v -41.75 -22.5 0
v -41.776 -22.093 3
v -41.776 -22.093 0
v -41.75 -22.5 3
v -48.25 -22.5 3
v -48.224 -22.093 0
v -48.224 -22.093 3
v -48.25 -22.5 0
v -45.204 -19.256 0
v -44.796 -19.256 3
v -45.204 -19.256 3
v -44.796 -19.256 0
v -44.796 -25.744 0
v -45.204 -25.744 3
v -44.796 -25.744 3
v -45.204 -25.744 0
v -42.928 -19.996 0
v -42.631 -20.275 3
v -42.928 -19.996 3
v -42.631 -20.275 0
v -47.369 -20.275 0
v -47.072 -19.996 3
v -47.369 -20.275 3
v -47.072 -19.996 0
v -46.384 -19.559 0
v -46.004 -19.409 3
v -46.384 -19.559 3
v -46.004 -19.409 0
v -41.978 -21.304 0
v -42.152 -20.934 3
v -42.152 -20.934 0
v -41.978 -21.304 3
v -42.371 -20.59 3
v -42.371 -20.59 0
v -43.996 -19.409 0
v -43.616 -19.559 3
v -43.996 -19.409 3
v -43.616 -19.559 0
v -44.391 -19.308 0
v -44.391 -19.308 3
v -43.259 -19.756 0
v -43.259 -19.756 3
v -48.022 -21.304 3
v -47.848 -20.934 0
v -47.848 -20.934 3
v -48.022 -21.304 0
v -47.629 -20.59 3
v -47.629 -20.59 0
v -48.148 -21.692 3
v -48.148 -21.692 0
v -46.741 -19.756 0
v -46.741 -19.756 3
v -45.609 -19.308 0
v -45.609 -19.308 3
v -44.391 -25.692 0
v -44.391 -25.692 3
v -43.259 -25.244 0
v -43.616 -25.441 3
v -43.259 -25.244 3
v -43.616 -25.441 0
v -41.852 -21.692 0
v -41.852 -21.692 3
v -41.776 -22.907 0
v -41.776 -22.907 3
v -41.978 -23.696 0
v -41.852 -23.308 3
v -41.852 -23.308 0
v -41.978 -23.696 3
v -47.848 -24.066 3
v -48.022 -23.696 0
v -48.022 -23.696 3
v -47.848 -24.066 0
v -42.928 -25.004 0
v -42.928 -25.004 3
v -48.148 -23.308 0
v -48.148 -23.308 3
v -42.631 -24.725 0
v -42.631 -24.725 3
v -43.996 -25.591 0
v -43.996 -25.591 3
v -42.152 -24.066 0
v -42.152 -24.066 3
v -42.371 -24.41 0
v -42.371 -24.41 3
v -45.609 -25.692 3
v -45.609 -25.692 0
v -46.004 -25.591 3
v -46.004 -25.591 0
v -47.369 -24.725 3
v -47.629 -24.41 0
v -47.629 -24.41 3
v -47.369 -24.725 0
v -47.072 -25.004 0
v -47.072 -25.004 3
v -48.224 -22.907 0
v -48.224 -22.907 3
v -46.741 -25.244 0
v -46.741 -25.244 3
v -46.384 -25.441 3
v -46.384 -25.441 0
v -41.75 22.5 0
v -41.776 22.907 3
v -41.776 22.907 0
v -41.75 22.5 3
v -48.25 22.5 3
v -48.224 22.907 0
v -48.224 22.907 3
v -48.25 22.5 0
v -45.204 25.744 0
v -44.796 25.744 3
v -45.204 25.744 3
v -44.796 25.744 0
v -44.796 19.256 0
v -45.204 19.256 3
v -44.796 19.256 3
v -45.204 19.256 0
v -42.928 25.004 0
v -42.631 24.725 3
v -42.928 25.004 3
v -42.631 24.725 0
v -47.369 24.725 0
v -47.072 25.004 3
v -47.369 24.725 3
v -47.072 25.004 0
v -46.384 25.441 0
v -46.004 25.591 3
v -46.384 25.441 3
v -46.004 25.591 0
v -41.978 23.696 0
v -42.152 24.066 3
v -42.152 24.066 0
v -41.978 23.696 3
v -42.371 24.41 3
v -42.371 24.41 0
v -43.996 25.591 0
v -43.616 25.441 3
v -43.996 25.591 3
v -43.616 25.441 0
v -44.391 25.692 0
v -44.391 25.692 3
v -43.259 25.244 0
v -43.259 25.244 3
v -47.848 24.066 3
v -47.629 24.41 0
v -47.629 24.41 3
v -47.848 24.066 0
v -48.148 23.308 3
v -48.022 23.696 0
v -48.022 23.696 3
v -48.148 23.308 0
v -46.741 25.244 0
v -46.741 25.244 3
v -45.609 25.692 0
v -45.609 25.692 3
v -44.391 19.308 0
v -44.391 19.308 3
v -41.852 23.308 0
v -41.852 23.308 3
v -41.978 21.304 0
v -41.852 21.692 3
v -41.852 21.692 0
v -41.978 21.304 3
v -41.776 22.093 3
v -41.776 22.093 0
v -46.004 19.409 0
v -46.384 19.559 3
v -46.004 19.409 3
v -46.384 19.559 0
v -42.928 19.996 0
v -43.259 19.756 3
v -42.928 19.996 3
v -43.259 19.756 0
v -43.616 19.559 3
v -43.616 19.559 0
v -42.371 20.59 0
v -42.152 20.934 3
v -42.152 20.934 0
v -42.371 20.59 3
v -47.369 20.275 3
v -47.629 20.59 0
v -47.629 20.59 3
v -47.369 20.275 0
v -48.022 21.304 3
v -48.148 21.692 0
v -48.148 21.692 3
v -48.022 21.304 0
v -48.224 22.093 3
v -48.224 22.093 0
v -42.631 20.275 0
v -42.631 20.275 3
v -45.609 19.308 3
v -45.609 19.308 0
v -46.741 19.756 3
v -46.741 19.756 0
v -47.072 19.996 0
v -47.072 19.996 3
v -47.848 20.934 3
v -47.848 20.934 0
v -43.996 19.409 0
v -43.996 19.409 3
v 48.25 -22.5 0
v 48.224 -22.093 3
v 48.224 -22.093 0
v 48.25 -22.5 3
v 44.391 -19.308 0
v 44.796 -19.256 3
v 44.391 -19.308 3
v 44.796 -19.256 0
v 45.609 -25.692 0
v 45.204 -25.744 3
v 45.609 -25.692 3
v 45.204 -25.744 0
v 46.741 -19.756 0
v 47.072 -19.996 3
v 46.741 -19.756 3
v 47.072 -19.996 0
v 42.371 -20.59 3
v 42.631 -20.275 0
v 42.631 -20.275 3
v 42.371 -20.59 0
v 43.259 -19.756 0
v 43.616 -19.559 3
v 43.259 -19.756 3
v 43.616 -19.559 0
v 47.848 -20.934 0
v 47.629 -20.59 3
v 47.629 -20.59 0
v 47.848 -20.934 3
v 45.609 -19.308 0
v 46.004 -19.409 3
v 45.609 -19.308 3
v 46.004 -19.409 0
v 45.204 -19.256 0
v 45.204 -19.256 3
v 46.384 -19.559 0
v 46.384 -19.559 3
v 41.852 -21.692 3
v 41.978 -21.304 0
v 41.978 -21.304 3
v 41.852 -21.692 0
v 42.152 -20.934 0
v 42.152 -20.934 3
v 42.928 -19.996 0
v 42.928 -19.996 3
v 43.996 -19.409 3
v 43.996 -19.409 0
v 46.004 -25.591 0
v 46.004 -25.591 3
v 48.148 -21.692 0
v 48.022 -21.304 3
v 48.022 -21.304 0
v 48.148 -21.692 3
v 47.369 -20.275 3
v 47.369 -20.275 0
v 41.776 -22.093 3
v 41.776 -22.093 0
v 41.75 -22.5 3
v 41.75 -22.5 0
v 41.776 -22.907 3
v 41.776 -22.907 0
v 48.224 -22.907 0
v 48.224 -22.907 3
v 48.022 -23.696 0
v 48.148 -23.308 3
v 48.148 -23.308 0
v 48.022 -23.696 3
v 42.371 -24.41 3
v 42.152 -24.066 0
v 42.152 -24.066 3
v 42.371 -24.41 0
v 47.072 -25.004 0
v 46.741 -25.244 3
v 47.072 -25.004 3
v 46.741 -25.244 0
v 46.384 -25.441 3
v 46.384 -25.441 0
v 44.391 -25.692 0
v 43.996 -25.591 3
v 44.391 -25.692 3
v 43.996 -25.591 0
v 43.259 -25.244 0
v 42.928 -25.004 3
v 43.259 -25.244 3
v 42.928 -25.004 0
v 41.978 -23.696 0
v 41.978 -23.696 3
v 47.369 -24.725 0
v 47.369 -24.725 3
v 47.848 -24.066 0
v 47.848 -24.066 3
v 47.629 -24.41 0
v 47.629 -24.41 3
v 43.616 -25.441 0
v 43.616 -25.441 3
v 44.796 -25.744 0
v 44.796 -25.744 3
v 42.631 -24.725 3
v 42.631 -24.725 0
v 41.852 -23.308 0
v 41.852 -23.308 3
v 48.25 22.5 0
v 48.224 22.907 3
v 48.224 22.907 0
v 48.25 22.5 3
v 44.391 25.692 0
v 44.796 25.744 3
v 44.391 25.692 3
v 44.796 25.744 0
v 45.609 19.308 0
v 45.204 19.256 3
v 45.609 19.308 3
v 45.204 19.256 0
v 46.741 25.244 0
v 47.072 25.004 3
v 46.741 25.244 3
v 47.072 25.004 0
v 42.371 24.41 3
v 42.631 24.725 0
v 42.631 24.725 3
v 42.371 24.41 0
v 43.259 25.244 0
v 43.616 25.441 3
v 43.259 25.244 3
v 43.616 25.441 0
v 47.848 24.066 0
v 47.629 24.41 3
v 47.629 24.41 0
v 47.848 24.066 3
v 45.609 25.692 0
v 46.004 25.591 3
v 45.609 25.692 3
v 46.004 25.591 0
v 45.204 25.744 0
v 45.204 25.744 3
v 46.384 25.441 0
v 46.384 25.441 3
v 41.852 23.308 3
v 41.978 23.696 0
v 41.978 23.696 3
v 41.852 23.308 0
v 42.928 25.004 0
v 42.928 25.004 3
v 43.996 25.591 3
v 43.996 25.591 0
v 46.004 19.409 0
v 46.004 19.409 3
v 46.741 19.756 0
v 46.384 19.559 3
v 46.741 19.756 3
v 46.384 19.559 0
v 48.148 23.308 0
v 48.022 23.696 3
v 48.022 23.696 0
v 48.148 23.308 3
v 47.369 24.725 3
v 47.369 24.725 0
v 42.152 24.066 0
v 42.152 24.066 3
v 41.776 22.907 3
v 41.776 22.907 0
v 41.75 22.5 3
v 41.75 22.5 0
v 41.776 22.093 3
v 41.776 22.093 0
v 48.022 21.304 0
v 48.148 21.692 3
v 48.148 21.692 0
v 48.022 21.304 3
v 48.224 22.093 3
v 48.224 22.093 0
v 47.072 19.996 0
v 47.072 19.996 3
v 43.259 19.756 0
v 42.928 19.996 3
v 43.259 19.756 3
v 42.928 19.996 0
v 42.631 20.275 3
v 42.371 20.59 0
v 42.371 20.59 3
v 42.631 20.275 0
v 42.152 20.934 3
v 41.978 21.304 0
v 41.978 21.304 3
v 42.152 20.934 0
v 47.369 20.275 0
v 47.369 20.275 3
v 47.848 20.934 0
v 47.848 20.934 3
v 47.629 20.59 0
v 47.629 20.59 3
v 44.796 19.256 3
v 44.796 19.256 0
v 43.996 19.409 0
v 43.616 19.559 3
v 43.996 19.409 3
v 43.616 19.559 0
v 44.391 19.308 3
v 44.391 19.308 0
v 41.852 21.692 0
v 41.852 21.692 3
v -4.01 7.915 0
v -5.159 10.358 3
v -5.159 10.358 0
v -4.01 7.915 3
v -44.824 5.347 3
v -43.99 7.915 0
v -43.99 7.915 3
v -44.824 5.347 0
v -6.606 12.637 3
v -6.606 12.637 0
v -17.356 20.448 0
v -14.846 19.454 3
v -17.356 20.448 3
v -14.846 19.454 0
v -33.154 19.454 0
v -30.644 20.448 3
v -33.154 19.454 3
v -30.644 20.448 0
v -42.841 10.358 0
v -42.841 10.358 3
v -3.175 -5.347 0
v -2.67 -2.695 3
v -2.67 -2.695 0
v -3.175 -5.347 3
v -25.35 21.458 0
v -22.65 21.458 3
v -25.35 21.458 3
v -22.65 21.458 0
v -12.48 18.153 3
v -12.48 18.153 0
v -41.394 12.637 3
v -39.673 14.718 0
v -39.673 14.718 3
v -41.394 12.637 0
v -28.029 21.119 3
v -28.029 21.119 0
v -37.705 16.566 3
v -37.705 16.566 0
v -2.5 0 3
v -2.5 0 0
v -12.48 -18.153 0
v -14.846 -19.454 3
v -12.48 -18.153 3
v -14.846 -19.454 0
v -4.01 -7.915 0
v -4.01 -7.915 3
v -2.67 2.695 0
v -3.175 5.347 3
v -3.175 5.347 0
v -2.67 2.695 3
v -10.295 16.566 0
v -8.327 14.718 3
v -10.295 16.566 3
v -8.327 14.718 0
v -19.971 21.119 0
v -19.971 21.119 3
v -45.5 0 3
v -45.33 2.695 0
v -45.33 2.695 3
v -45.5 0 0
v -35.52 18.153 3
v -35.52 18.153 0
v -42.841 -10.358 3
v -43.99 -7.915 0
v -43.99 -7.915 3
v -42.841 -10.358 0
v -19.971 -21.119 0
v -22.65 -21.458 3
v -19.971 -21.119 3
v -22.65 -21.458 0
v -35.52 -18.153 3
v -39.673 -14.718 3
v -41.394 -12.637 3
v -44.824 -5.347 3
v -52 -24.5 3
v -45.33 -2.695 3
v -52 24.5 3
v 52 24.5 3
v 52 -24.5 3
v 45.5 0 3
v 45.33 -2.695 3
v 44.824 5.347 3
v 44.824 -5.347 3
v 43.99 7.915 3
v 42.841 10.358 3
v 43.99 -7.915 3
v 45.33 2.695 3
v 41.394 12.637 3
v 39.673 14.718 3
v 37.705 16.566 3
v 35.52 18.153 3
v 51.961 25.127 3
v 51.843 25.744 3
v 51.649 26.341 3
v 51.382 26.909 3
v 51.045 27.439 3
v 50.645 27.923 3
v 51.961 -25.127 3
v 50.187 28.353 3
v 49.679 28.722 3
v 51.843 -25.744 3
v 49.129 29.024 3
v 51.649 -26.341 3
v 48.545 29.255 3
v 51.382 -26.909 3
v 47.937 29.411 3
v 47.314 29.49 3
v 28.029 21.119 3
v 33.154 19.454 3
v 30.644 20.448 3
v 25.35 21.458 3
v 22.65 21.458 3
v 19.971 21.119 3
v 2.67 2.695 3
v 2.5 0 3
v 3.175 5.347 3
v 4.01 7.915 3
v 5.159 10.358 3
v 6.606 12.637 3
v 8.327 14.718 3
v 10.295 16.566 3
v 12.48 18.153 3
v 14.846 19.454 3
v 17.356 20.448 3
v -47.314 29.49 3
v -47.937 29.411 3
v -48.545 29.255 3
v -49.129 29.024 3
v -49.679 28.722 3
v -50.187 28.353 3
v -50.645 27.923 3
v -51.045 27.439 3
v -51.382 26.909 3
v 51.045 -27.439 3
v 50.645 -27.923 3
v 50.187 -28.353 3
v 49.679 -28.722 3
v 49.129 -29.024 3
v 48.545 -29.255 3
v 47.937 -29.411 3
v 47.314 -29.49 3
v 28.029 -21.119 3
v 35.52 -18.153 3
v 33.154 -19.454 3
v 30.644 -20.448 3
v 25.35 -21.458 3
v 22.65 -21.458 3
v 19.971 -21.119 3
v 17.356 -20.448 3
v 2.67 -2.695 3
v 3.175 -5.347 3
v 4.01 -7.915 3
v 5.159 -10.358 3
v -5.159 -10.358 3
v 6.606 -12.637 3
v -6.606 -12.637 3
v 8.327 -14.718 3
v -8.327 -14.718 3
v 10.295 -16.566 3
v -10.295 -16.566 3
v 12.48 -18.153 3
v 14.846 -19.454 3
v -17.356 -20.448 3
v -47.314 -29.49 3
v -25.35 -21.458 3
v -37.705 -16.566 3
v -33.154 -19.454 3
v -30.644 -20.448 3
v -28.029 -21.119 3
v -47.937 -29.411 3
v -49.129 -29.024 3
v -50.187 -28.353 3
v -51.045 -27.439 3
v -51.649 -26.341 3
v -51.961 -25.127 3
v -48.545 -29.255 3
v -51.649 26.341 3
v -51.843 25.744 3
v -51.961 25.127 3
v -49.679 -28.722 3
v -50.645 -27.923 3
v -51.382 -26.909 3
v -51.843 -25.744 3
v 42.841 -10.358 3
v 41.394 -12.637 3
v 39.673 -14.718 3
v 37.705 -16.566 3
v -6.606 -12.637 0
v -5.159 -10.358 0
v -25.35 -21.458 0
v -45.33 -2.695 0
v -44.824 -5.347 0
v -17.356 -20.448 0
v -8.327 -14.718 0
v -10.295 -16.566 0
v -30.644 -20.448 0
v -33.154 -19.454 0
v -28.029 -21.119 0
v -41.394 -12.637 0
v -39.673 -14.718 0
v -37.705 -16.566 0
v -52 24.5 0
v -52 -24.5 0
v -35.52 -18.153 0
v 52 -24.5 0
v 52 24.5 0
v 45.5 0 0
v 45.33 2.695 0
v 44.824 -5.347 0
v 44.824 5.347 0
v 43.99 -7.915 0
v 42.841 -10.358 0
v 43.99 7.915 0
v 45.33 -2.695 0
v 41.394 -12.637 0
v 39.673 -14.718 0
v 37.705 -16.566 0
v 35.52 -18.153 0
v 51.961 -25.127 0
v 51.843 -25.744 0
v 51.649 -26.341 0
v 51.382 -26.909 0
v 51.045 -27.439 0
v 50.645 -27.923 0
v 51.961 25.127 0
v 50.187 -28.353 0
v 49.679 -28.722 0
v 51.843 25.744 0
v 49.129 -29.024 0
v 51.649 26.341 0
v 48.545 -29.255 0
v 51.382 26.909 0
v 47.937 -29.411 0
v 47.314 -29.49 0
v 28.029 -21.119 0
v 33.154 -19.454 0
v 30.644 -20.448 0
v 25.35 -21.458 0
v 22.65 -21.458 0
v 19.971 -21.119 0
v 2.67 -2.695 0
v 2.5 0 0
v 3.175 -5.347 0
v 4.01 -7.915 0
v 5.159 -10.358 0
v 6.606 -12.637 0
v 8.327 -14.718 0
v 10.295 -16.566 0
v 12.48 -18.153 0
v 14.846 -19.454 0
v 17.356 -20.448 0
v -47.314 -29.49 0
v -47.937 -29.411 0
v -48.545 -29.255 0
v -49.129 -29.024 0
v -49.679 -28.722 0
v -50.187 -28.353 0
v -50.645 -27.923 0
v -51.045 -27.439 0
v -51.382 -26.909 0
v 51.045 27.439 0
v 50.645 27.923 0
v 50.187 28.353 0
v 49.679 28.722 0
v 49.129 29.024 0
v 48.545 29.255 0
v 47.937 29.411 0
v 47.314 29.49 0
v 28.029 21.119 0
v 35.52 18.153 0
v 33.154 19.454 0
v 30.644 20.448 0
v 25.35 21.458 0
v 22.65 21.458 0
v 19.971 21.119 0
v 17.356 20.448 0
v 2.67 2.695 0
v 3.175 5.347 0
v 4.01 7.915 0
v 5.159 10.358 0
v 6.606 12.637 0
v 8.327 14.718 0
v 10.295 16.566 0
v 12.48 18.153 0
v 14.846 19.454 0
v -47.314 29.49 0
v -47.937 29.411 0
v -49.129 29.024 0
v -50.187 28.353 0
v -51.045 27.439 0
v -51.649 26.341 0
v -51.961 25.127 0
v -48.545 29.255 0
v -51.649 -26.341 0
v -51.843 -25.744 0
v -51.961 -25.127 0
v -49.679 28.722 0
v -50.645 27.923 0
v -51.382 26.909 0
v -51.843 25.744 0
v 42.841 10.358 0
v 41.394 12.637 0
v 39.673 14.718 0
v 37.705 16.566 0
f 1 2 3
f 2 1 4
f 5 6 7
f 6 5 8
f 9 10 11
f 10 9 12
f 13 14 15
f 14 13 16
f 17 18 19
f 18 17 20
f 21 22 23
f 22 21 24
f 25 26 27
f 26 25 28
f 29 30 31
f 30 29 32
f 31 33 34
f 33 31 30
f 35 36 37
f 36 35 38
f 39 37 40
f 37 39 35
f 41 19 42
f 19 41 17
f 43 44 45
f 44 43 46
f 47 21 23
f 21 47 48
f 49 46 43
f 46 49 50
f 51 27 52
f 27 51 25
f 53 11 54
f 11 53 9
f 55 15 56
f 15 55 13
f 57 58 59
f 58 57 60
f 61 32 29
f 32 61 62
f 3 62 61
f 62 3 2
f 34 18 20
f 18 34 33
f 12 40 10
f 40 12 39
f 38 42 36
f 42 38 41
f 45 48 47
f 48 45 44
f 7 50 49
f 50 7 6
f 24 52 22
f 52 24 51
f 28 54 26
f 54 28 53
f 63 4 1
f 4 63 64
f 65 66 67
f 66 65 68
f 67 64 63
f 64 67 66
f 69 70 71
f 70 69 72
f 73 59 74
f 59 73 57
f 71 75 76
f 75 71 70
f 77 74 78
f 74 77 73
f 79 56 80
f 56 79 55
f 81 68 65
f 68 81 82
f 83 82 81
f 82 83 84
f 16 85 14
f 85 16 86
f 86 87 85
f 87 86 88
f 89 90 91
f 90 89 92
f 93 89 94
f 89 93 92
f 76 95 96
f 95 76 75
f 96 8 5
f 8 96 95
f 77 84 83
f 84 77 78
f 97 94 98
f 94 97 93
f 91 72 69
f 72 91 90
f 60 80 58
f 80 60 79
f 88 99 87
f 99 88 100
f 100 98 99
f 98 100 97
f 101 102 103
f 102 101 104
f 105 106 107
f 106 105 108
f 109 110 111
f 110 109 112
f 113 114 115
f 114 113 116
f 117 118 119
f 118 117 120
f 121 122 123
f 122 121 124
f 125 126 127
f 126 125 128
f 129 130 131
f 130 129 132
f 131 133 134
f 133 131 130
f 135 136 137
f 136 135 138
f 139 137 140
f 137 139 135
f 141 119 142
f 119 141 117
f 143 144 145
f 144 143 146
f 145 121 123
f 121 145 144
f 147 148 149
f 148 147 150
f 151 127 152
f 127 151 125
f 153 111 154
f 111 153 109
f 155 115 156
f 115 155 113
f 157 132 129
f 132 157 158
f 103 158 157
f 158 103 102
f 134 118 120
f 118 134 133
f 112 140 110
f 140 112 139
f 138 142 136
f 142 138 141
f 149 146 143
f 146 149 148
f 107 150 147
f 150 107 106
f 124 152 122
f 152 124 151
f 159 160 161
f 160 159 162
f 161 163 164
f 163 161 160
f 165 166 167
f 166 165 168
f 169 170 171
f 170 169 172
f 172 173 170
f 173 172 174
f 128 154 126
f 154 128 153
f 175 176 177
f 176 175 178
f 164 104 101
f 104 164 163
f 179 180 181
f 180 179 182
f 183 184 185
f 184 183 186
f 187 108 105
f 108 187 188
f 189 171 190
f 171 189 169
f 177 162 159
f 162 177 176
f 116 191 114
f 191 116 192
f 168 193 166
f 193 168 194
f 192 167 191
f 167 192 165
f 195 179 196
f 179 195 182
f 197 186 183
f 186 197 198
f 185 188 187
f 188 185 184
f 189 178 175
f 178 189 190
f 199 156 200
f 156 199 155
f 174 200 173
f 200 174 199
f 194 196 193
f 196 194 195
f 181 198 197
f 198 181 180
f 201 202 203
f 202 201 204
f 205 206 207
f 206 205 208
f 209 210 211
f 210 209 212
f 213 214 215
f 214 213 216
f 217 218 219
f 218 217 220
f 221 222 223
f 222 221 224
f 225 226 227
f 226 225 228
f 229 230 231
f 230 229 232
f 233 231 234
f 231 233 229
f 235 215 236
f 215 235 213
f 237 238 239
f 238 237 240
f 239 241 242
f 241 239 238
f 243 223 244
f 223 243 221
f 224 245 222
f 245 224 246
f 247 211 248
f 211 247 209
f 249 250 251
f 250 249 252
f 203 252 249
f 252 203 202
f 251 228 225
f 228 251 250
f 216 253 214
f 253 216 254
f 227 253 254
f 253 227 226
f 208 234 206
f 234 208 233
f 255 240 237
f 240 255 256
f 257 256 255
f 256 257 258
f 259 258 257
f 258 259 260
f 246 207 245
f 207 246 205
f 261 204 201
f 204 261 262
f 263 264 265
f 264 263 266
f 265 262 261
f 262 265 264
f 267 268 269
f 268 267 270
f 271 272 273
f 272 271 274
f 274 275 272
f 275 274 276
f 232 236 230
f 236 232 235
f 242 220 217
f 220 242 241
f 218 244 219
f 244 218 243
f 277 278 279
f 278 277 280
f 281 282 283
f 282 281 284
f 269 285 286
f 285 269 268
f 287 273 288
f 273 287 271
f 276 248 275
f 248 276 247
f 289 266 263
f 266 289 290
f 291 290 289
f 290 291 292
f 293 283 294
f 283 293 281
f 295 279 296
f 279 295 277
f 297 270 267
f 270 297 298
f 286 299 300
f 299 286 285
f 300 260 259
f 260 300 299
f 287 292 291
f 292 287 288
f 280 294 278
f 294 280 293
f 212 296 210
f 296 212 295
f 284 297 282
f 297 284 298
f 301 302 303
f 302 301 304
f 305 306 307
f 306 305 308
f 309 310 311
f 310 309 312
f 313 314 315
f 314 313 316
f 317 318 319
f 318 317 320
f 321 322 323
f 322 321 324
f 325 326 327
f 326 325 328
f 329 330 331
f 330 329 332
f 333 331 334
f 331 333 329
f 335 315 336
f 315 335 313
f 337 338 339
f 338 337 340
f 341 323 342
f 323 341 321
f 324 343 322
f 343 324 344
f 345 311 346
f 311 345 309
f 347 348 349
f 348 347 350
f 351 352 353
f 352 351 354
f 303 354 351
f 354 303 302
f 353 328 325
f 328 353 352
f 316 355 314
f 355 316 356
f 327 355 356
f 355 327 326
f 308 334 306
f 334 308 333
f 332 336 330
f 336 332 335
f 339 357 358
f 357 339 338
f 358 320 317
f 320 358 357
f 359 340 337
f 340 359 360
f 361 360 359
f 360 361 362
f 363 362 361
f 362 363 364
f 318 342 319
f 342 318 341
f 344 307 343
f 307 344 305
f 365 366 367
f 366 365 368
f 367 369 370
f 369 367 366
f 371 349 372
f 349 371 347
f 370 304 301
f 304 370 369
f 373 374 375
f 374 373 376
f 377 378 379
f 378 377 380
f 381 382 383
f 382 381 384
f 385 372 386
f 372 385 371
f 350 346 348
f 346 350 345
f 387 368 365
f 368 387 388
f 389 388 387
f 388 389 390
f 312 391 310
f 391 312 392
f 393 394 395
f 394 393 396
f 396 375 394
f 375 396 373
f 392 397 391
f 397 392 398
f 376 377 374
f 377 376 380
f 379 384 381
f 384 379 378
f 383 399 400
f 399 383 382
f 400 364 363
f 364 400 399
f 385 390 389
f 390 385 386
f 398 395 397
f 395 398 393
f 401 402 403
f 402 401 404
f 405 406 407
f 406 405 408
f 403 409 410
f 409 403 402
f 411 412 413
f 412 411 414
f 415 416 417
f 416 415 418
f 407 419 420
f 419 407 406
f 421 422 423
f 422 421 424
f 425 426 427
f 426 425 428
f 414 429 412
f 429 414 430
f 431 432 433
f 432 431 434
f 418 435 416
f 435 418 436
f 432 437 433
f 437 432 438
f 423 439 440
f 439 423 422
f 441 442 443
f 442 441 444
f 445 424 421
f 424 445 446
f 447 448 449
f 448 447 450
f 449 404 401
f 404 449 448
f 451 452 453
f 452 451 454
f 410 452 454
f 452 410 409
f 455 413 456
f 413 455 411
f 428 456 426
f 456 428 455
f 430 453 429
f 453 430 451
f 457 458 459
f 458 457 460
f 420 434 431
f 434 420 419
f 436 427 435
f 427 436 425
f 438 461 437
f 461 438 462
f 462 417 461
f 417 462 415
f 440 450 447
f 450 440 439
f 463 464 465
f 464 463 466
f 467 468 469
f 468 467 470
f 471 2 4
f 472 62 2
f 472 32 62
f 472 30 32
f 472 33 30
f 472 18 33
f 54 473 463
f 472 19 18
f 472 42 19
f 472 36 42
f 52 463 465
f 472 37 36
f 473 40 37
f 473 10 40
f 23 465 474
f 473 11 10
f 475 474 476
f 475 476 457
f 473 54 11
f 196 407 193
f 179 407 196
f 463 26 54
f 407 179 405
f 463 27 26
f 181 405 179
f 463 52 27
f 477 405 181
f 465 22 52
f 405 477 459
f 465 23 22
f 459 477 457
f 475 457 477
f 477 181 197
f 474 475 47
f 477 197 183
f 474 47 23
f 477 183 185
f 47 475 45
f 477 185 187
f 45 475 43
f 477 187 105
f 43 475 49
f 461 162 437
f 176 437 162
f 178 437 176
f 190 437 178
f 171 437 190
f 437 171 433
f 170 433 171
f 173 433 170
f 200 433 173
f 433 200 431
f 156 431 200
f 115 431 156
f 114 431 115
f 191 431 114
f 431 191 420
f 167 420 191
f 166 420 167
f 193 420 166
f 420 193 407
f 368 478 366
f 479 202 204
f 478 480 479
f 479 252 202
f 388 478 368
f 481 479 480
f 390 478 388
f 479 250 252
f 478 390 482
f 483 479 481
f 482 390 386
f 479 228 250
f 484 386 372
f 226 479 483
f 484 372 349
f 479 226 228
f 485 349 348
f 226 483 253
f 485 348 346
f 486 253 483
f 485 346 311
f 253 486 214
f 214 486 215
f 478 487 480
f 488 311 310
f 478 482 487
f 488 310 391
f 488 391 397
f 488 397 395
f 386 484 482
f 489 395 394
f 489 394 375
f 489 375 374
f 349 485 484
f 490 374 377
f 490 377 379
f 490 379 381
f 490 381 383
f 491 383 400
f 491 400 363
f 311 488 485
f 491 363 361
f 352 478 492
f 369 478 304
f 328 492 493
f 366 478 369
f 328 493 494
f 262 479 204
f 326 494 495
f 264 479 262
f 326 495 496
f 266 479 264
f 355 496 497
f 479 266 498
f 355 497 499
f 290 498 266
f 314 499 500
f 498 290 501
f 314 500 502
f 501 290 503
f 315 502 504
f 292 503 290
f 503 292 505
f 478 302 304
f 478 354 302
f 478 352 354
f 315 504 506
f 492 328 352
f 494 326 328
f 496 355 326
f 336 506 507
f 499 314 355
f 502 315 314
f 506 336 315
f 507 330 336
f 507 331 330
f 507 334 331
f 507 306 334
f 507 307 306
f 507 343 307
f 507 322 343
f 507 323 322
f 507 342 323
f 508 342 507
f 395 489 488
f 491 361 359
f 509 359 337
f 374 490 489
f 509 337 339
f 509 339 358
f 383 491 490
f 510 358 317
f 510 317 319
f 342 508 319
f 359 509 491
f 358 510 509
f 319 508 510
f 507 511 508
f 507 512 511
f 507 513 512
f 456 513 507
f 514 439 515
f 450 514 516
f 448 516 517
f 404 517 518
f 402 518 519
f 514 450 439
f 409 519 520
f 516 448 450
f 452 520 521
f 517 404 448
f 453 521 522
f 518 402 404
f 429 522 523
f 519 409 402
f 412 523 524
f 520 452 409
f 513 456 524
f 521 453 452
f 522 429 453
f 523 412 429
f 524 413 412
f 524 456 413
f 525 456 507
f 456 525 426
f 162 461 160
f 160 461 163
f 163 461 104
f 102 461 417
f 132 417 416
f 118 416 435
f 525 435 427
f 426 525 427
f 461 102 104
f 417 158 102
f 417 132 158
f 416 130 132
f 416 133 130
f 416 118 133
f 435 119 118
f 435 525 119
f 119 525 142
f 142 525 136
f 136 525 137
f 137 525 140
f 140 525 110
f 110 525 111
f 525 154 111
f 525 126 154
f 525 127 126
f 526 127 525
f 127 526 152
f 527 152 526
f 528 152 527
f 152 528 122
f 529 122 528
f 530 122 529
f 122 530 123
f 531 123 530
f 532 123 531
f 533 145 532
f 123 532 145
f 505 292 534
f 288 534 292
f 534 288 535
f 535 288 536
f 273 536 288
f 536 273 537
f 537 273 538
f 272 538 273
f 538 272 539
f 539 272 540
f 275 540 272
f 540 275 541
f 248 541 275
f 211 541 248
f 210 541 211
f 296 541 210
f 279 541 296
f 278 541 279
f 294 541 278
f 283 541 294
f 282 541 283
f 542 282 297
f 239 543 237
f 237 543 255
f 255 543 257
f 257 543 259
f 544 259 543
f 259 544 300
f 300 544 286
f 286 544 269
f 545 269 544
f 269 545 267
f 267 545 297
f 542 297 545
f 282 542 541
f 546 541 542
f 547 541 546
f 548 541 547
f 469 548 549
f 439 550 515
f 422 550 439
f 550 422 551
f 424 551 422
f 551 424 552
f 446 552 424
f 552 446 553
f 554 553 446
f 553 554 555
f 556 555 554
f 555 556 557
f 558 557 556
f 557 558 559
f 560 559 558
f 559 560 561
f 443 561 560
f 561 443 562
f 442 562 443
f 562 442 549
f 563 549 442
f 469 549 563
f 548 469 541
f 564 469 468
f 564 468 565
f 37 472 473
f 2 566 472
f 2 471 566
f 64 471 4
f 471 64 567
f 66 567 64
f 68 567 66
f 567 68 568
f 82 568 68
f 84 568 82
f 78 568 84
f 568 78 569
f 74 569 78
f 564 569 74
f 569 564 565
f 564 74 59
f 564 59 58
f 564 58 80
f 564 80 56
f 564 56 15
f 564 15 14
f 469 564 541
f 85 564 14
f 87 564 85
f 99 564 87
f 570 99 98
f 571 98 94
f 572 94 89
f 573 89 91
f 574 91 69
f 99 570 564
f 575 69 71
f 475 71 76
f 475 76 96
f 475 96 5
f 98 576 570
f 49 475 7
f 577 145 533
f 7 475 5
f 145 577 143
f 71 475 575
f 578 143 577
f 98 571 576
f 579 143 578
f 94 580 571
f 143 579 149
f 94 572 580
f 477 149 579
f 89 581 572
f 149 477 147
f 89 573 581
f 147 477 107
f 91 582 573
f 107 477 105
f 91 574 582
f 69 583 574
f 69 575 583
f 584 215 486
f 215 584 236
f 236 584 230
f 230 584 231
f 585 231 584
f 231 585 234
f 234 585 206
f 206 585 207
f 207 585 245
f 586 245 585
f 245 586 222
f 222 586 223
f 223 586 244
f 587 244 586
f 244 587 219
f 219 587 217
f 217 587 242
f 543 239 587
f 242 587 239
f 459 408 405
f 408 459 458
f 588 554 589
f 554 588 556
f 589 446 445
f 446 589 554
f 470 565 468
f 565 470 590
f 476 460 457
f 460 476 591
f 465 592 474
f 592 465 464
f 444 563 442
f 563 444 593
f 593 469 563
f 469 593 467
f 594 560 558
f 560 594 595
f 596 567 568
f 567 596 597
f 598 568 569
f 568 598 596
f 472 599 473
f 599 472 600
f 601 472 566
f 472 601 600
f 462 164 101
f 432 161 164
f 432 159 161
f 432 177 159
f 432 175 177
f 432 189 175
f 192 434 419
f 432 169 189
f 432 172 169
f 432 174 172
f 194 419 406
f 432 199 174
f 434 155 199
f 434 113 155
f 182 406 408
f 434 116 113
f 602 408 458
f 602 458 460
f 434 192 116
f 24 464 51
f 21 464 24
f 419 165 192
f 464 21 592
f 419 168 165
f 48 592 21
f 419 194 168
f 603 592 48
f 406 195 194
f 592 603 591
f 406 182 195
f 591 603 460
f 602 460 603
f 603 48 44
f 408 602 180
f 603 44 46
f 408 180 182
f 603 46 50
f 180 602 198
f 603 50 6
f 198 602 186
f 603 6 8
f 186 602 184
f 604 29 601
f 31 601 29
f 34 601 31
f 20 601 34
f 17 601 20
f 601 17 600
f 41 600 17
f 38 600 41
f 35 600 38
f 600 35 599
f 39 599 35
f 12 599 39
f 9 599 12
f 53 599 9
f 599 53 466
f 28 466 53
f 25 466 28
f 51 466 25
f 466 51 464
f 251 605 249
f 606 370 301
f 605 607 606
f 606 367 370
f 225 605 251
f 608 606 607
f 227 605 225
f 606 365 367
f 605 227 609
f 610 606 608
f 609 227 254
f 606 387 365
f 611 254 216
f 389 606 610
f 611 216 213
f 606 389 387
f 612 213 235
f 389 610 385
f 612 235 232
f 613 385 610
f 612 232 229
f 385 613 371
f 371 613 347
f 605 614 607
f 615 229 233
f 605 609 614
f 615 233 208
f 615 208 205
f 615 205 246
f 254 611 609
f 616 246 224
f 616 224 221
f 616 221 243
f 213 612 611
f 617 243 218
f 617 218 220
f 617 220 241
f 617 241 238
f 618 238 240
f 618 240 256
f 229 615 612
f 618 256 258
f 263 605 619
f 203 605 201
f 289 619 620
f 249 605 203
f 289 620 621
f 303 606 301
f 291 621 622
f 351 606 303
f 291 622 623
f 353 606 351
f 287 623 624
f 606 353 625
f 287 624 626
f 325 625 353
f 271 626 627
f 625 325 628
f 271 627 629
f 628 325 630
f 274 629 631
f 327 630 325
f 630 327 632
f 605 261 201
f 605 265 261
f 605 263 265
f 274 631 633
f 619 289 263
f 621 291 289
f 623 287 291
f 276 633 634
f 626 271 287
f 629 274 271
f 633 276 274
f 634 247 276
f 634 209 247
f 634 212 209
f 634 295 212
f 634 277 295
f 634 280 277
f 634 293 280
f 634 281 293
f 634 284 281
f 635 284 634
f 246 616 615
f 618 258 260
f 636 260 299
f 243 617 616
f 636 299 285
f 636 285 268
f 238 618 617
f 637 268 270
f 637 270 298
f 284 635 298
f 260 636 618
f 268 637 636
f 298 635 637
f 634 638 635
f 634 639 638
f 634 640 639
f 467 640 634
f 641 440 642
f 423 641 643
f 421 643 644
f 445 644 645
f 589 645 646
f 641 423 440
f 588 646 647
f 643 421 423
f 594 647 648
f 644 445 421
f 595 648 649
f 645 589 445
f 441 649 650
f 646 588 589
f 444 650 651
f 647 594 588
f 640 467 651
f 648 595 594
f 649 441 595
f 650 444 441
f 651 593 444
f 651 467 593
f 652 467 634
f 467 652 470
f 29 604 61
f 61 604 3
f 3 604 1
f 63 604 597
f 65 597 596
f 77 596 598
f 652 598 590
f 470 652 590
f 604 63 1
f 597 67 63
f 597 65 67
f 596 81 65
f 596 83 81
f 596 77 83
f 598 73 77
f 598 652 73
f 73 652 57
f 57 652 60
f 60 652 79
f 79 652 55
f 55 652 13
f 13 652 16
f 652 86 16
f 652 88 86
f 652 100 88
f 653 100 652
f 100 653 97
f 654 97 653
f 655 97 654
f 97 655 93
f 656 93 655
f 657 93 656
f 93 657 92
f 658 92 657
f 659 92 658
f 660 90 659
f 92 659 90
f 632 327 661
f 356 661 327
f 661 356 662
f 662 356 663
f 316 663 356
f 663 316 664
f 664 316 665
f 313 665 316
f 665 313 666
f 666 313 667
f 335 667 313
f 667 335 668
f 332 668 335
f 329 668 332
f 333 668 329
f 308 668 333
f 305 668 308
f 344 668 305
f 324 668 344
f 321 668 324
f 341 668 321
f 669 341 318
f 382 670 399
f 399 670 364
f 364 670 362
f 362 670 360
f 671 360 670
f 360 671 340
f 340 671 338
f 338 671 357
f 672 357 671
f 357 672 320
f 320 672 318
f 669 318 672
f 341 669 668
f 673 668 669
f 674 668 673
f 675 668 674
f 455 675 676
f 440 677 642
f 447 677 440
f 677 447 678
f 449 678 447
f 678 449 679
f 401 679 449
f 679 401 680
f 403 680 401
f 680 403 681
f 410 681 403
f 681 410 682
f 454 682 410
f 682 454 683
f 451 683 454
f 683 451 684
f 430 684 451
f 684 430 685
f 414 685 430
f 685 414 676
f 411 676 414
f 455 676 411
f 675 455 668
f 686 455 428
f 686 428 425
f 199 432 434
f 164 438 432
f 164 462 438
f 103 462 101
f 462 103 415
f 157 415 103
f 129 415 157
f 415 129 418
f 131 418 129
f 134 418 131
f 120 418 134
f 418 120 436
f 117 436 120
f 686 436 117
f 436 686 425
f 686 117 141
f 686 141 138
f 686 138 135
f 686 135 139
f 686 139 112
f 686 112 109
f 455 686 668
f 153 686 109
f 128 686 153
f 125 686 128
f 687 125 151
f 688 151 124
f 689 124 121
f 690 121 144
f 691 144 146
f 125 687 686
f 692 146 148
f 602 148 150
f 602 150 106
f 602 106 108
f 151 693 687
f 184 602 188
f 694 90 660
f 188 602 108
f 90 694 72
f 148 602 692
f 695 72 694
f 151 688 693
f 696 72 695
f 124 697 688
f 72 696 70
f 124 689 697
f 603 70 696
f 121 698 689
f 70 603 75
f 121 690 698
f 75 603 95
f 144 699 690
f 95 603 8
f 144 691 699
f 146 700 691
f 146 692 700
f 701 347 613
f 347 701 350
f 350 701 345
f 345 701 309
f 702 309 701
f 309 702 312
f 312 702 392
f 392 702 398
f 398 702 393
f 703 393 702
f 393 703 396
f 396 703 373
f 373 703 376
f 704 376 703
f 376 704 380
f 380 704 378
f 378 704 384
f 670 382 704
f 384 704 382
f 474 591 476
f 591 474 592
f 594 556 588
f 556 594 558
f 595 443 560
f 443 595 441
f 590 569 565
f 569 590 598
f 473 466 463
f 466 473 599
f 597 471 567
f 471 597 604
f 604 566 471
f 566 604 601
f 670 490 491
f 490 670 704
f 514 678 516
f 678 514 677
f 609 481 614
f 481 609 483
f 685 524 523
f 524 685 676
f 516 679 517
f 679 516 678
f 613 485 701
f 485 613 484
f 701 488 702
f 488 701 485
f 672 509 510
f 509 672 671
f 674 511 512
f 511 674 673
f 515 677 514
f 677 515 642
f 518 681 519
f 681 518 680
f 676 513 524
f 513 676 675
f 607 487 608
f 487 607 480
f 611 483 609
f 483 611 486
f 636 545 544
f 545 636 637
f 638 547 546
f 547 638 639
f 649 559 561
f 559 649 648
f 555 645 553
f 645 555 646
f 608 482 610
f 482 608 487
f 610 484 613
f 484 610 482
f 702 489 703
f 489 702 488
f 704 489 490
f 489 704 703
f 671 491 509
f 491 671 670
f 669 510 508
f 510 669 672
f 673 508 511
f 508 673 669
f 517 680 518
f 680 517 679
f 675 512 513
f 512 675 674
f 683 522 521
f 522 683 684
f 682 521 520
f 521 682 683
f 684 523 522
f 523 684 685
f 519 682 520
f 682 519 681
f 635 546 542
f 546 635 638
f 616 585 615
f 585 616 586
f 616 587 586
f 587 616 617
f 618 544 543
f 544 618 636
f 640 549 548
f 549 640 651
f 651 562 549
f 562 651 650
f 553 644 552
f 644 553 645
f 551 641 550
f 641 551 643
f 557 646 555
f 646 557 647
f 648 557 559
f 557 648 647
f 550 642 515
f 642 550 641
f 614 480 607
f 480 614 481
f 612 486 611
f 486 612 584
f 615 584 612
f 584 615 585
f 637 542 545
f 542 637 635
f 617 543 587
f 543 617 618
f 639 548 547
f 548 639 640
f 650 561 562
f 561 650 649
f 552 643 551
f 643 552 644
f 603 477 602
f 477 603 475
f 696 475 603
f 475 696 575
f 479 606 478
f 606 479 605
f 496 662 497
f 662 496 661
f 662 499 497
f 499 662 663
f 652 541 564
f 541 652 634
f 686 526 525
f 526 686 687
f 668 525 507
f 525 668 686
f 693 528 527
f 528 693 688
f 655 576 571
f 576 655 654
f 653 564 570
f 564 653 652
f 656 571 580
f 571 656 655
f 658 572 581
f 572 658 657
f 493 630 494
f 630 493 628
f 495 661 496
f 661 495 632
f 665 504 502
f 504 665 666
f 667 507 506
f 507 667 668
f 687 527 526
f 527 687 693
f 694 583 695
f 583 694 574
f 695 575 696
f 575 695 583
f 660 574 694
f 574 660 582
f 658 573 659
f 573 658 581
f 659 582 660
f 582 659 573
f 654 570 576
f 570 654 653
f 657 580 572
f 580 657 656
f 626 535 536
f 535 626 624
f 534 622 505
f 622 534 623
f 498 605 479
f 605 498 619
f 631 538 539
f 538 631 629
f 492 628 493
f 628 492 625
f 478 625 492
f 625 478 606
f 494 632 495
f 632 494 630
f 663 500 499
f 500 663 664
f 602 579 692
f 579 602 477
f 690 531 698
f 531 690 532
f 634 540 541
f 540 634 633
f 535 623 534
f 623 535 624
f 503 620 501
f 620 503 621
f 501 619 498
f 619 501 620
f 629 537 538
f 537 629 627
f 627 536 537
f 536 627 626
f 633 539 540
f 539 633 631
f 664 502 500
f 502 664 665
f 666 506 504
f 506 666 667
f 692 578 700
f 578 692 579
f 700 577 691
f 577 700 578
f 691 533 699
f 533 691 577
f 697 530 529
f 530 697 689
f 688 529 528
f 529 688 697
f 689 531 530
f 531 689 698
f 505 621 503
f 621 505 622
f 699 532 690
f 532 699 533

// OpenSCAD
$fn = 50;


difference() {
	union() {
		hull() {
			translate(v = [-47.0000000000, 24.5000000000, 0]) {
				cylinder(h = 3, r = 5);
			}
			translate(v = [47.0000000000, 24.5000000000, 0]) {
				cylinder(h = 3, r = 5);
			}
			translate(v = [-47.0000000000, -24.5000000000, 0]) {
				cylinder(h = 3, r = 5);
			}
			translate(v = [47.0000000000, -24.5000000000, 0]) {
				cylinder(h = 3, r = 5);
			}
		}
	}
	union() {
		#translate(v = [-45.0000000000, -22.5000000000, -100.0000000000]) {
			cylinder(h = 200, r = 3.2500000000);
		}
		#translate(v = [-45.0000000000, 22.5000000000, -100.0000000000]) {
			cylinder(h = 200, r = 3.2500000000);
		}
		#translate(v = [45.0000000000, -22.5000000000, -100.0000000000]) {
			cylinder(h = 200, r = 3.2500000000);
		}
		#translate(v = [45.0000000000, 22.5000000000, -100.0000000000]) {
			cylinder(h = 200, r = 3.2500000000);
		}
		#translate(v = [-24.0000000000, 0, 0]) {
			cylinder(h = 3, r = 21.5000000000);
		}
		#translate(v = [24.0000000000, 0, 0]) {
			cylinder(h = 3, r = 21.5000000000);
		}
	}
}
